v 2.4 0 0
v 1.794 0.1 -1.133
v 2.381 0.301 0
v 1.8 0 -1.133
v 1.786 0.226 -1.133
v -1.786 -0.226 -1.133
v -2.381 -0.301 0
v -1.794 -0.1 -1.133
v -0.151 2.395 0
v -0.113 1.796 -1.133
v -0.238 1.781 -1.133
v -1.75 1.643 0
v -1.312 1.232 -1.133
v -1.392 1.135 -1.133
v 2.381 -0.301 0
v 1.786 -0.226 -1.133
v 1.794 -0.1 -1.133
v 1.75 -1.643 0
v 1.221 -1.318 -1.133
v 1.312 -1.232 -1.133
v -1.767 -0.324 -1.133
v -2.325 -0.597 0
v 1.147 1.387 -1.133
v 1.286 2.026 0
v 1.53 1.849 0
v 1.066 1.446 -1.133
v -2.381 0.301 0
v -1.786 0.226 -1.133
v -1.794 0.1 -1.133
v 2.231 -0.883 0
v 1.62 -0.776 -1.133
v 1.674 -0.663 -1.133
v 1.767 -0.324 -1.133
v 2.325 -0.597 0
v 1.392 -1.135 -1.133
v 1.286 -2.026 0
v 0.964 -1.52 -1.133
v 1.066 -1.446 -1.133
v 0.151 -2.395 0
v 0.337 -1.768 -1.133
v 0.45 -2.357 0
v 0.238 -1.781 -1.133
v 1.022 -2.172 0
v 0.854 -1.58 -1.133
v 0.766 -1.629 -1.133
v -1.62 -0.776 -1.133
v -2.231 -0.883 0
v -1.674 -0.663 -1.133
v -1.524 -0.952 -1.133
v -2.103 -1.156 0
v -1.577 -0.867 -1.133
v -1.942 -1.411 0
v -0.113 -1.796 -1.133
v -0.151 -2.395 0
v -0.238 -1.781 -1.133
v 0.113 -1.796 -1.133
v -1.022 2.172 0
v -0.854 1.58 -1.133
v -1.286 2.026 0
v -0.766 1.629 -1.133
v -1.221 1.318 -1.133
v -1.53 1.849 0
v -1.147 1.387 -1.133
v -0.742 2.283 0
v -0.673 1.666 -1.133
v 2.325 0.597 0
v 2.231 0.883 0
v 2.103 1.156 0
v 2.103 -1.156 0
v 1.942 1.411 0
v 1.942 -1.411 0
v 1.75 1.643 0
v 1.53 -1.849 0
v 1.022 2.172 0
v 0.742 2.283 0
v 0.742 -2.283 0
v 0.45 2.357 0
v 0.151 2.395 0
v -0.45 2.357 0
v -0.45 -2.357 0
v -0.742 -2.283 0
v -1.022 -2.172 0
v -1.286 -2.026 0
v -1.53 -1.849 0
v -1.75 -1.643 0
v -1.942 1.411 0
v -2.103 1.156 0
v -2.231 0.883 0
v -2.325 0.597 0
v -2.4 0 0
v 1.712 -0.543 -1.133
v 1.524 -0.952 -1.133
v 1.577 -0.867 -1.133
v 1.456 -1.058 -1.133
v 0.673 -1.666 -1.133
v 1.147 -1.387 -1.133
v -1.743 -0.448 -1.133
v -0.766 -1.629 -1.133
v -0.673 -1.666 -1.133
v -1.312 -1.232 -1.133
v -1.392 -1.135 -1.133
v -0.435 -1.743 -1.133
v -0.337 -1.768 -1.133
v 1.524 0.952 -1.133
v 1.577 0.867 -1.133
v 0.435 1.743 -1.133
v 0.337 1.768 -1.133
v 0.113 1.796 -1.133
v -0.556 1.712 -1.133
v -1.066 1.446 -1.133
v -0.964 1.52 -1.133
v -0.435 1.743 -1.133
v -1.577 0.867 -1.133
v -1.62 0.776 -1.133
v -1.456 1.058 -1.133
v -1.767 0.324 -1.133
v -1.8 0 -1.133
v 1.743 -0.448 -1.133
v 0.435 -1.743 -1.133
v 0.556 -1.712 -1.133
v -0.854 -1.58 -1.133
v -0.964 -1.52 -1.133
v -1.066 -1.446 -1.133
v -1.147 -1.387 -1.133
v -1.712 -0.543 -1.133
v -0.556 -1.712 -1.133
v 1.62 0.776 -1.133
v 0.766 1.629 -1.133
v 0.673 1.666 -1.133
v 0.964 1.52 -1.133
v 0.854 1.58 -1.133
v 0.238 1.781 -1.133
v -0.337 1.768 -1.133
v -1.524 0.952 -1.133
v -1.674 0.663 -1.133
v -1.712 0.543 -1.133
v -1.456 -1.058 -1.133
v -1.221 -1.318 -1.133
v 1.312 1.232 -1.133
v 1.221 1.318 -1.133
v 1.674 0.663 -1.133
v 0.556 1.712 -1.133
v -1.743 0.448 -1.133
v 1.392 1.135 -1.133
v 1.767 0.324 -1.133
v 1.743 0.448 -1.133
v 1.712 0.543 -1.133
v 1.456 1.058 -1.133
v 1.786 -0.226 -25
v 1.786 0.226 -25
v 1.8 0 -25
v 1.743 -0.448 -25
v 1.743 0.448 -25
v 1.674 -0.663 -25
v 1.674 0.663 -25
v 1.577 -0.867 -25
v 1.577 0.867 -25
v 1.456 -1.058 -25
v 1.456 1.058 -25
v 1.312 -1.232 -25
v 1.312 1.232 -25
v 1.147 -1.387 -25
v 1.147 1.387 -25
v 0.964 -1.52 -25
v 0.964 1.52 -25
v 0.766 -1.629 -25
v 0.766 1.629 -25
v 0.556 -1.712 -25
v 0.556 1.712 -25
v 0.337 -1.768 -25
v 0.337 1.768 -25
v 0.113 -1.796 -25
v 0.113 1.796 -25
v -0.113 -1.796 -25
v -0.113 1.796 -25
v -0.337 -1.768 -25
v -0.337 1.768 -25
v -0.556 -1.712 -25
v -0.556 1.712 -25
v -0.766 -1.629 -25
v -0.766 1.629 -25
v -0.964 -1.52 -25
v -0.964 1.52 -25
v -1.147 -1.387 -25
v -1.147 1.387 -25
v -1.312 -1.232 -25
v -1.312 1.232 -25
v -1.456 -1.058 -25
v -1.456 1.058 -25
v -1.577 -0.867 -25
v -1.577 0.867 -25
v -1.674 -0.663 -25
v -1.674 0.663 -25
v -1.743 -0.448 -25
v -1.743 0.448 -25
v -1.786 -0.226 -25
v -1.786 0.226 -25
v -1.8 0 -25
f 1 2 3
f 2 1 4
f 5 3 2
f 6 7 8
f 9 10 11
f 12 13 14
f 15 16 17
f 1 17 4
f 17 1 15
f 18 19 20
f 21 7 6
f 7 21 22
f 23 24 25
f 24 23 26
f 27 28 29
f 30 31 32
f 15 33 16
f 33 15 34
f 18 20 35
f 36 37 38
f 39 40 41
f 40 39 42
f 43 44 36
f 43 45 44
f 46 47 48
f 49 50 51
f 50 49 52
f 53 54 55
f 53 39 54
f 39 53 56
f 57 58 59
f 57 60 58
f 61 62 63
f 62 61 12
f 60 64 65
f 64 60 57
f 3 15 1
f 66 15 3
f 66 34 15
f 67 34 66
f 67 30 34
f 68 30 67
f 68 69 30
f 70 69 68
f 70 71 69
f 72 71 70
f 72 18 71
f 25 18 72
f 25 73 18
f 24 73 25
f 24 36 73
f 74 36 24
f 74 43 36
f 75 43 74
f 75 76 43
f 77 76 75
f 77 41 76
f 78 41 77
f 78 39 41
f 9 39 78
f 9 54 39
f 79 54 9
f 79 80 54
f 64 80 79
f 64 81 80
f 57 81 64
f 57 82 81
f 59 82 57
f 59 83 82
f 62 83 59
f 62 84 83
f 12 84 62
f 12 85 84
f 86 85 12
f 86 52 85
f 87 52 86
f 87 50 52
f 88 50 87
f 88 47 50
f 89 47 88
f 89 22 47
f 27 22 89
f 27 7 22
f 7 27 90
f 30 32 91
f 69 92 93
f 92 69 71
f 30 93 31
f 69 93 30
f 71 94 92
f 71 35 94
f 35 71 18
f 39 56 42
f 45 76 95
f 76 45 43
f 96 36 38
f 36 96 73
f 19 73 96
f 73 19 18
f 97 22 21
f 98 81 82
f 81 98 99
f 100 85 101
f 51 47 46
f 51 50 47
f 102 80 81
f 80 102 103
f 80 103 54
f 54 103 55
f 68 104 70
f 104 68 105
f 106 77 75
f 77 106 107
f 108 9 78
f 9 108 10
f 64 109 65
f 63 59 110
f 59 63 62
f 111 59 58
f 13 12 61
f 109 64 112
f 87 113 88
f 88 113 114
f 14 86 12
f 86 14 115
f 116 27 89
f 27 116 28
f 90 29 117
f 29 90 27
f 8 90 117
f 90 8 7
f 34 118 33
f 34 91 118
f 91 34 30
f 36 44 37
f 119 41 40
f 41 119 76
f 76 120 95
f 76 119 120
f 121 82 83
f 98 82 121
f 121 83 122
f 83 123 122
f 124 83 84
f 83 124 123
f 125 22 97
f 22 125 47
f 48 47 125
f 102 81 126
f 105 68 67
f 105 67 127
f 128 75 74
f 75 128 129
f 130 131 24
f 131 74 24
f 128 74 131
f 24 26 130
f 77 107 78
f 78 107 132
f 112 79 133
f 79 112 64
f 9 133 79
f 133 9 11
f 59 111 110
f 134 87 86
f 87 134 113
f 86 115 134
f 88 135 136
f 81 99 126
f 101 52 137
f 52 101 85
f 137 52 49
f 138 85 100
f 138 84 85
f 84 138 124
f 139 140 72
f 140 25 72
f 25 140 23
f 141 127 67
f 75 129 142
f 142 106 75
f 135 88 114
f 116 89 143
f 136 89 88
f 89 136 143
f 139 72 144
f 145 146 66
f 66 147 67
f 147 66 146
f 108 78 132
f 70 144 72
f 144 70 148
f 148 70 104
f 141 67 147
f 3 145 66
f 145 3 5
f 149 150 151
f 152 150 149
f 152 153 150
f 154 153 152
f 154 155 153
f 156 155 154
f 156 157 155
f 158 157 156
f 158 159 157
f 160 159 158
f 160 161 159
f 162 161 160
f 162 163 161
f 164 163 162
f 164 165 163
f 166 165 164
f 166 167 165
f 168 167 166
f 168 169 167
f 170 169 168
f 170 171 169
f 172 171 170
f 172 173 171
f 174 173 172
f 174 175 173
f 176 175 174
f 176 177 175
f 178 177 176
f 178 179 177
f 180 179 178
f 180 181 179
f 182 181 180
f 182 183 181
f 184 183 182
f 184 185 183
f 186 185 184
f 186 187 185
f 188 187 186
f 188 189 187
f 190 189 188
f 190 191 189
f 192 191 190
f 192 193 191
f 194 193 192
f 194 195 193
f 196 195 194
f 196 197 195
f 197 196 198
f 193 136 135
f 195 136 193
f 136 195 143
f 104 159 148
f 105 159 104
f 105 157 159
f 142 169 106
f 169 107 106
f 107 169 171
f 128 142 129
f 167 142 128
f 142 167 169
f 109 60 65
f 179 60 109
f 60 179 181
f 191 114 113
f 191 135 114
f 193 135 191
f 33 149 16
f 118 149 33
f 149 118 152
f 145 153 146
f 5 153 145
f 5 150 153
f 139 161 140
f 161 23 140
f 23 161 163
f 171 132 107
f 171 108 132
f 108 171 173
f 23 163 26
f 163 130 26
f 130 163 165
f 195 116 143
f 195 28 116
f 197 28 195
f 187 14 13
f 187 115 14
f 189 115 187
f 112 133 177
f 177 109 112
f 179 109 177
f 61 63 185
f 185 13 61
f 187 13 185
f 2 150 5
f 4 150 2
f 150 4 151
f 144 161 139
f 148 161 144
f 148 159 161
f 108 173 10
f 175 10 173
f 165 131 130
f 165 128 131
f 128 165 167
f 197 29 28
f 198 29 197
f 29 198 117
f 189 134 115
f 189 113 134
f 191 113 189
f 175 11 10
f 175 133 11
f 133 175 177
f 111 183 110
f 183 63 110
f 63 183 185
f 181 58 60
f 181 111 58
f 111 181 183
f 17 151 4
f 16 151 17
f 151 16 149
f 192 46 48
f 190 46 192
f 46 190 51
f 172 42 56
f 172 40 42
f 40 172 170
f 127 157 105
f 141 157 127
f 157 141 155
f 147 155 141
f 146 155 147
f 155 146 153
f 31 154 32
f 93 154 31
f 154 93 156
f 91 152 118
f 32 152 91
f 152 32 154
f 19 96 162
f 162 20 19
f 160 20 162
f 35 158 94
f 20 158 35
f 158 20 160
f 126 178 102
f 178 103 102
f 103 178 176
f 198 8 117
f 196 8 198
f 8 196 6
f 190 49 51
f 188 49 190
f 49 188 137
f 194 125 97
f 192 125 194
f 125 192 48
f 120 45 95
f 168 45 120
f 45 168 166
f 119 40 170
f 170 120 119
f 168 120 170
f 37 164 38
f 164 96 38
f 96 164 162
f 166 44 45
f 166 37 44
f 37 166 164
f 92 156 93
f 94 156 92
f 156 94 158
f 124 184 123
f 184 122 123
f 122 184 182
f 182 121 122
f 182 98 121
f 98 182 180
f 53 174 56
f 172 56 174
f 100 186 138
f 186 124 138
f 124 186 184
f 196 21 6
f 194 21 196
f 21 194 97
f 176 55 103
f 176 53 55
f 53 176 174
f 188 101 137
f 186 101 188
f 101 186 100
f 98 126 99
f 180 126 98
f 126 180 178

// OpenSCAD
$fn = 50;


difference() {
	union() {
		translate(v = [0, 0, 0]) {
			rotate(a = [0, 0, 0]) {
				difference() {
					union() {
						translate(v = [0, 0, -1.7000000000]) {
							cylinder(h = 1.7000000000, r1 = 1.5000000000, r2 = 2.4000000000);
						}
						translate(v = [0, 0, -25.0000000000]) {
							cylinder(h = 25, r = 1.5000000000);
						}
						translate(v = [0, 0, -25.0000000000]) {
							cylinder(h = 25, r = 1.8000000000);
						}
						translate(v = [0, 0, -25.0000000000]) {
							cylinder(h = 25, r = 1.5000000000);
						}
					}
					union();
				}
			}
		}
	}
	union();
}
